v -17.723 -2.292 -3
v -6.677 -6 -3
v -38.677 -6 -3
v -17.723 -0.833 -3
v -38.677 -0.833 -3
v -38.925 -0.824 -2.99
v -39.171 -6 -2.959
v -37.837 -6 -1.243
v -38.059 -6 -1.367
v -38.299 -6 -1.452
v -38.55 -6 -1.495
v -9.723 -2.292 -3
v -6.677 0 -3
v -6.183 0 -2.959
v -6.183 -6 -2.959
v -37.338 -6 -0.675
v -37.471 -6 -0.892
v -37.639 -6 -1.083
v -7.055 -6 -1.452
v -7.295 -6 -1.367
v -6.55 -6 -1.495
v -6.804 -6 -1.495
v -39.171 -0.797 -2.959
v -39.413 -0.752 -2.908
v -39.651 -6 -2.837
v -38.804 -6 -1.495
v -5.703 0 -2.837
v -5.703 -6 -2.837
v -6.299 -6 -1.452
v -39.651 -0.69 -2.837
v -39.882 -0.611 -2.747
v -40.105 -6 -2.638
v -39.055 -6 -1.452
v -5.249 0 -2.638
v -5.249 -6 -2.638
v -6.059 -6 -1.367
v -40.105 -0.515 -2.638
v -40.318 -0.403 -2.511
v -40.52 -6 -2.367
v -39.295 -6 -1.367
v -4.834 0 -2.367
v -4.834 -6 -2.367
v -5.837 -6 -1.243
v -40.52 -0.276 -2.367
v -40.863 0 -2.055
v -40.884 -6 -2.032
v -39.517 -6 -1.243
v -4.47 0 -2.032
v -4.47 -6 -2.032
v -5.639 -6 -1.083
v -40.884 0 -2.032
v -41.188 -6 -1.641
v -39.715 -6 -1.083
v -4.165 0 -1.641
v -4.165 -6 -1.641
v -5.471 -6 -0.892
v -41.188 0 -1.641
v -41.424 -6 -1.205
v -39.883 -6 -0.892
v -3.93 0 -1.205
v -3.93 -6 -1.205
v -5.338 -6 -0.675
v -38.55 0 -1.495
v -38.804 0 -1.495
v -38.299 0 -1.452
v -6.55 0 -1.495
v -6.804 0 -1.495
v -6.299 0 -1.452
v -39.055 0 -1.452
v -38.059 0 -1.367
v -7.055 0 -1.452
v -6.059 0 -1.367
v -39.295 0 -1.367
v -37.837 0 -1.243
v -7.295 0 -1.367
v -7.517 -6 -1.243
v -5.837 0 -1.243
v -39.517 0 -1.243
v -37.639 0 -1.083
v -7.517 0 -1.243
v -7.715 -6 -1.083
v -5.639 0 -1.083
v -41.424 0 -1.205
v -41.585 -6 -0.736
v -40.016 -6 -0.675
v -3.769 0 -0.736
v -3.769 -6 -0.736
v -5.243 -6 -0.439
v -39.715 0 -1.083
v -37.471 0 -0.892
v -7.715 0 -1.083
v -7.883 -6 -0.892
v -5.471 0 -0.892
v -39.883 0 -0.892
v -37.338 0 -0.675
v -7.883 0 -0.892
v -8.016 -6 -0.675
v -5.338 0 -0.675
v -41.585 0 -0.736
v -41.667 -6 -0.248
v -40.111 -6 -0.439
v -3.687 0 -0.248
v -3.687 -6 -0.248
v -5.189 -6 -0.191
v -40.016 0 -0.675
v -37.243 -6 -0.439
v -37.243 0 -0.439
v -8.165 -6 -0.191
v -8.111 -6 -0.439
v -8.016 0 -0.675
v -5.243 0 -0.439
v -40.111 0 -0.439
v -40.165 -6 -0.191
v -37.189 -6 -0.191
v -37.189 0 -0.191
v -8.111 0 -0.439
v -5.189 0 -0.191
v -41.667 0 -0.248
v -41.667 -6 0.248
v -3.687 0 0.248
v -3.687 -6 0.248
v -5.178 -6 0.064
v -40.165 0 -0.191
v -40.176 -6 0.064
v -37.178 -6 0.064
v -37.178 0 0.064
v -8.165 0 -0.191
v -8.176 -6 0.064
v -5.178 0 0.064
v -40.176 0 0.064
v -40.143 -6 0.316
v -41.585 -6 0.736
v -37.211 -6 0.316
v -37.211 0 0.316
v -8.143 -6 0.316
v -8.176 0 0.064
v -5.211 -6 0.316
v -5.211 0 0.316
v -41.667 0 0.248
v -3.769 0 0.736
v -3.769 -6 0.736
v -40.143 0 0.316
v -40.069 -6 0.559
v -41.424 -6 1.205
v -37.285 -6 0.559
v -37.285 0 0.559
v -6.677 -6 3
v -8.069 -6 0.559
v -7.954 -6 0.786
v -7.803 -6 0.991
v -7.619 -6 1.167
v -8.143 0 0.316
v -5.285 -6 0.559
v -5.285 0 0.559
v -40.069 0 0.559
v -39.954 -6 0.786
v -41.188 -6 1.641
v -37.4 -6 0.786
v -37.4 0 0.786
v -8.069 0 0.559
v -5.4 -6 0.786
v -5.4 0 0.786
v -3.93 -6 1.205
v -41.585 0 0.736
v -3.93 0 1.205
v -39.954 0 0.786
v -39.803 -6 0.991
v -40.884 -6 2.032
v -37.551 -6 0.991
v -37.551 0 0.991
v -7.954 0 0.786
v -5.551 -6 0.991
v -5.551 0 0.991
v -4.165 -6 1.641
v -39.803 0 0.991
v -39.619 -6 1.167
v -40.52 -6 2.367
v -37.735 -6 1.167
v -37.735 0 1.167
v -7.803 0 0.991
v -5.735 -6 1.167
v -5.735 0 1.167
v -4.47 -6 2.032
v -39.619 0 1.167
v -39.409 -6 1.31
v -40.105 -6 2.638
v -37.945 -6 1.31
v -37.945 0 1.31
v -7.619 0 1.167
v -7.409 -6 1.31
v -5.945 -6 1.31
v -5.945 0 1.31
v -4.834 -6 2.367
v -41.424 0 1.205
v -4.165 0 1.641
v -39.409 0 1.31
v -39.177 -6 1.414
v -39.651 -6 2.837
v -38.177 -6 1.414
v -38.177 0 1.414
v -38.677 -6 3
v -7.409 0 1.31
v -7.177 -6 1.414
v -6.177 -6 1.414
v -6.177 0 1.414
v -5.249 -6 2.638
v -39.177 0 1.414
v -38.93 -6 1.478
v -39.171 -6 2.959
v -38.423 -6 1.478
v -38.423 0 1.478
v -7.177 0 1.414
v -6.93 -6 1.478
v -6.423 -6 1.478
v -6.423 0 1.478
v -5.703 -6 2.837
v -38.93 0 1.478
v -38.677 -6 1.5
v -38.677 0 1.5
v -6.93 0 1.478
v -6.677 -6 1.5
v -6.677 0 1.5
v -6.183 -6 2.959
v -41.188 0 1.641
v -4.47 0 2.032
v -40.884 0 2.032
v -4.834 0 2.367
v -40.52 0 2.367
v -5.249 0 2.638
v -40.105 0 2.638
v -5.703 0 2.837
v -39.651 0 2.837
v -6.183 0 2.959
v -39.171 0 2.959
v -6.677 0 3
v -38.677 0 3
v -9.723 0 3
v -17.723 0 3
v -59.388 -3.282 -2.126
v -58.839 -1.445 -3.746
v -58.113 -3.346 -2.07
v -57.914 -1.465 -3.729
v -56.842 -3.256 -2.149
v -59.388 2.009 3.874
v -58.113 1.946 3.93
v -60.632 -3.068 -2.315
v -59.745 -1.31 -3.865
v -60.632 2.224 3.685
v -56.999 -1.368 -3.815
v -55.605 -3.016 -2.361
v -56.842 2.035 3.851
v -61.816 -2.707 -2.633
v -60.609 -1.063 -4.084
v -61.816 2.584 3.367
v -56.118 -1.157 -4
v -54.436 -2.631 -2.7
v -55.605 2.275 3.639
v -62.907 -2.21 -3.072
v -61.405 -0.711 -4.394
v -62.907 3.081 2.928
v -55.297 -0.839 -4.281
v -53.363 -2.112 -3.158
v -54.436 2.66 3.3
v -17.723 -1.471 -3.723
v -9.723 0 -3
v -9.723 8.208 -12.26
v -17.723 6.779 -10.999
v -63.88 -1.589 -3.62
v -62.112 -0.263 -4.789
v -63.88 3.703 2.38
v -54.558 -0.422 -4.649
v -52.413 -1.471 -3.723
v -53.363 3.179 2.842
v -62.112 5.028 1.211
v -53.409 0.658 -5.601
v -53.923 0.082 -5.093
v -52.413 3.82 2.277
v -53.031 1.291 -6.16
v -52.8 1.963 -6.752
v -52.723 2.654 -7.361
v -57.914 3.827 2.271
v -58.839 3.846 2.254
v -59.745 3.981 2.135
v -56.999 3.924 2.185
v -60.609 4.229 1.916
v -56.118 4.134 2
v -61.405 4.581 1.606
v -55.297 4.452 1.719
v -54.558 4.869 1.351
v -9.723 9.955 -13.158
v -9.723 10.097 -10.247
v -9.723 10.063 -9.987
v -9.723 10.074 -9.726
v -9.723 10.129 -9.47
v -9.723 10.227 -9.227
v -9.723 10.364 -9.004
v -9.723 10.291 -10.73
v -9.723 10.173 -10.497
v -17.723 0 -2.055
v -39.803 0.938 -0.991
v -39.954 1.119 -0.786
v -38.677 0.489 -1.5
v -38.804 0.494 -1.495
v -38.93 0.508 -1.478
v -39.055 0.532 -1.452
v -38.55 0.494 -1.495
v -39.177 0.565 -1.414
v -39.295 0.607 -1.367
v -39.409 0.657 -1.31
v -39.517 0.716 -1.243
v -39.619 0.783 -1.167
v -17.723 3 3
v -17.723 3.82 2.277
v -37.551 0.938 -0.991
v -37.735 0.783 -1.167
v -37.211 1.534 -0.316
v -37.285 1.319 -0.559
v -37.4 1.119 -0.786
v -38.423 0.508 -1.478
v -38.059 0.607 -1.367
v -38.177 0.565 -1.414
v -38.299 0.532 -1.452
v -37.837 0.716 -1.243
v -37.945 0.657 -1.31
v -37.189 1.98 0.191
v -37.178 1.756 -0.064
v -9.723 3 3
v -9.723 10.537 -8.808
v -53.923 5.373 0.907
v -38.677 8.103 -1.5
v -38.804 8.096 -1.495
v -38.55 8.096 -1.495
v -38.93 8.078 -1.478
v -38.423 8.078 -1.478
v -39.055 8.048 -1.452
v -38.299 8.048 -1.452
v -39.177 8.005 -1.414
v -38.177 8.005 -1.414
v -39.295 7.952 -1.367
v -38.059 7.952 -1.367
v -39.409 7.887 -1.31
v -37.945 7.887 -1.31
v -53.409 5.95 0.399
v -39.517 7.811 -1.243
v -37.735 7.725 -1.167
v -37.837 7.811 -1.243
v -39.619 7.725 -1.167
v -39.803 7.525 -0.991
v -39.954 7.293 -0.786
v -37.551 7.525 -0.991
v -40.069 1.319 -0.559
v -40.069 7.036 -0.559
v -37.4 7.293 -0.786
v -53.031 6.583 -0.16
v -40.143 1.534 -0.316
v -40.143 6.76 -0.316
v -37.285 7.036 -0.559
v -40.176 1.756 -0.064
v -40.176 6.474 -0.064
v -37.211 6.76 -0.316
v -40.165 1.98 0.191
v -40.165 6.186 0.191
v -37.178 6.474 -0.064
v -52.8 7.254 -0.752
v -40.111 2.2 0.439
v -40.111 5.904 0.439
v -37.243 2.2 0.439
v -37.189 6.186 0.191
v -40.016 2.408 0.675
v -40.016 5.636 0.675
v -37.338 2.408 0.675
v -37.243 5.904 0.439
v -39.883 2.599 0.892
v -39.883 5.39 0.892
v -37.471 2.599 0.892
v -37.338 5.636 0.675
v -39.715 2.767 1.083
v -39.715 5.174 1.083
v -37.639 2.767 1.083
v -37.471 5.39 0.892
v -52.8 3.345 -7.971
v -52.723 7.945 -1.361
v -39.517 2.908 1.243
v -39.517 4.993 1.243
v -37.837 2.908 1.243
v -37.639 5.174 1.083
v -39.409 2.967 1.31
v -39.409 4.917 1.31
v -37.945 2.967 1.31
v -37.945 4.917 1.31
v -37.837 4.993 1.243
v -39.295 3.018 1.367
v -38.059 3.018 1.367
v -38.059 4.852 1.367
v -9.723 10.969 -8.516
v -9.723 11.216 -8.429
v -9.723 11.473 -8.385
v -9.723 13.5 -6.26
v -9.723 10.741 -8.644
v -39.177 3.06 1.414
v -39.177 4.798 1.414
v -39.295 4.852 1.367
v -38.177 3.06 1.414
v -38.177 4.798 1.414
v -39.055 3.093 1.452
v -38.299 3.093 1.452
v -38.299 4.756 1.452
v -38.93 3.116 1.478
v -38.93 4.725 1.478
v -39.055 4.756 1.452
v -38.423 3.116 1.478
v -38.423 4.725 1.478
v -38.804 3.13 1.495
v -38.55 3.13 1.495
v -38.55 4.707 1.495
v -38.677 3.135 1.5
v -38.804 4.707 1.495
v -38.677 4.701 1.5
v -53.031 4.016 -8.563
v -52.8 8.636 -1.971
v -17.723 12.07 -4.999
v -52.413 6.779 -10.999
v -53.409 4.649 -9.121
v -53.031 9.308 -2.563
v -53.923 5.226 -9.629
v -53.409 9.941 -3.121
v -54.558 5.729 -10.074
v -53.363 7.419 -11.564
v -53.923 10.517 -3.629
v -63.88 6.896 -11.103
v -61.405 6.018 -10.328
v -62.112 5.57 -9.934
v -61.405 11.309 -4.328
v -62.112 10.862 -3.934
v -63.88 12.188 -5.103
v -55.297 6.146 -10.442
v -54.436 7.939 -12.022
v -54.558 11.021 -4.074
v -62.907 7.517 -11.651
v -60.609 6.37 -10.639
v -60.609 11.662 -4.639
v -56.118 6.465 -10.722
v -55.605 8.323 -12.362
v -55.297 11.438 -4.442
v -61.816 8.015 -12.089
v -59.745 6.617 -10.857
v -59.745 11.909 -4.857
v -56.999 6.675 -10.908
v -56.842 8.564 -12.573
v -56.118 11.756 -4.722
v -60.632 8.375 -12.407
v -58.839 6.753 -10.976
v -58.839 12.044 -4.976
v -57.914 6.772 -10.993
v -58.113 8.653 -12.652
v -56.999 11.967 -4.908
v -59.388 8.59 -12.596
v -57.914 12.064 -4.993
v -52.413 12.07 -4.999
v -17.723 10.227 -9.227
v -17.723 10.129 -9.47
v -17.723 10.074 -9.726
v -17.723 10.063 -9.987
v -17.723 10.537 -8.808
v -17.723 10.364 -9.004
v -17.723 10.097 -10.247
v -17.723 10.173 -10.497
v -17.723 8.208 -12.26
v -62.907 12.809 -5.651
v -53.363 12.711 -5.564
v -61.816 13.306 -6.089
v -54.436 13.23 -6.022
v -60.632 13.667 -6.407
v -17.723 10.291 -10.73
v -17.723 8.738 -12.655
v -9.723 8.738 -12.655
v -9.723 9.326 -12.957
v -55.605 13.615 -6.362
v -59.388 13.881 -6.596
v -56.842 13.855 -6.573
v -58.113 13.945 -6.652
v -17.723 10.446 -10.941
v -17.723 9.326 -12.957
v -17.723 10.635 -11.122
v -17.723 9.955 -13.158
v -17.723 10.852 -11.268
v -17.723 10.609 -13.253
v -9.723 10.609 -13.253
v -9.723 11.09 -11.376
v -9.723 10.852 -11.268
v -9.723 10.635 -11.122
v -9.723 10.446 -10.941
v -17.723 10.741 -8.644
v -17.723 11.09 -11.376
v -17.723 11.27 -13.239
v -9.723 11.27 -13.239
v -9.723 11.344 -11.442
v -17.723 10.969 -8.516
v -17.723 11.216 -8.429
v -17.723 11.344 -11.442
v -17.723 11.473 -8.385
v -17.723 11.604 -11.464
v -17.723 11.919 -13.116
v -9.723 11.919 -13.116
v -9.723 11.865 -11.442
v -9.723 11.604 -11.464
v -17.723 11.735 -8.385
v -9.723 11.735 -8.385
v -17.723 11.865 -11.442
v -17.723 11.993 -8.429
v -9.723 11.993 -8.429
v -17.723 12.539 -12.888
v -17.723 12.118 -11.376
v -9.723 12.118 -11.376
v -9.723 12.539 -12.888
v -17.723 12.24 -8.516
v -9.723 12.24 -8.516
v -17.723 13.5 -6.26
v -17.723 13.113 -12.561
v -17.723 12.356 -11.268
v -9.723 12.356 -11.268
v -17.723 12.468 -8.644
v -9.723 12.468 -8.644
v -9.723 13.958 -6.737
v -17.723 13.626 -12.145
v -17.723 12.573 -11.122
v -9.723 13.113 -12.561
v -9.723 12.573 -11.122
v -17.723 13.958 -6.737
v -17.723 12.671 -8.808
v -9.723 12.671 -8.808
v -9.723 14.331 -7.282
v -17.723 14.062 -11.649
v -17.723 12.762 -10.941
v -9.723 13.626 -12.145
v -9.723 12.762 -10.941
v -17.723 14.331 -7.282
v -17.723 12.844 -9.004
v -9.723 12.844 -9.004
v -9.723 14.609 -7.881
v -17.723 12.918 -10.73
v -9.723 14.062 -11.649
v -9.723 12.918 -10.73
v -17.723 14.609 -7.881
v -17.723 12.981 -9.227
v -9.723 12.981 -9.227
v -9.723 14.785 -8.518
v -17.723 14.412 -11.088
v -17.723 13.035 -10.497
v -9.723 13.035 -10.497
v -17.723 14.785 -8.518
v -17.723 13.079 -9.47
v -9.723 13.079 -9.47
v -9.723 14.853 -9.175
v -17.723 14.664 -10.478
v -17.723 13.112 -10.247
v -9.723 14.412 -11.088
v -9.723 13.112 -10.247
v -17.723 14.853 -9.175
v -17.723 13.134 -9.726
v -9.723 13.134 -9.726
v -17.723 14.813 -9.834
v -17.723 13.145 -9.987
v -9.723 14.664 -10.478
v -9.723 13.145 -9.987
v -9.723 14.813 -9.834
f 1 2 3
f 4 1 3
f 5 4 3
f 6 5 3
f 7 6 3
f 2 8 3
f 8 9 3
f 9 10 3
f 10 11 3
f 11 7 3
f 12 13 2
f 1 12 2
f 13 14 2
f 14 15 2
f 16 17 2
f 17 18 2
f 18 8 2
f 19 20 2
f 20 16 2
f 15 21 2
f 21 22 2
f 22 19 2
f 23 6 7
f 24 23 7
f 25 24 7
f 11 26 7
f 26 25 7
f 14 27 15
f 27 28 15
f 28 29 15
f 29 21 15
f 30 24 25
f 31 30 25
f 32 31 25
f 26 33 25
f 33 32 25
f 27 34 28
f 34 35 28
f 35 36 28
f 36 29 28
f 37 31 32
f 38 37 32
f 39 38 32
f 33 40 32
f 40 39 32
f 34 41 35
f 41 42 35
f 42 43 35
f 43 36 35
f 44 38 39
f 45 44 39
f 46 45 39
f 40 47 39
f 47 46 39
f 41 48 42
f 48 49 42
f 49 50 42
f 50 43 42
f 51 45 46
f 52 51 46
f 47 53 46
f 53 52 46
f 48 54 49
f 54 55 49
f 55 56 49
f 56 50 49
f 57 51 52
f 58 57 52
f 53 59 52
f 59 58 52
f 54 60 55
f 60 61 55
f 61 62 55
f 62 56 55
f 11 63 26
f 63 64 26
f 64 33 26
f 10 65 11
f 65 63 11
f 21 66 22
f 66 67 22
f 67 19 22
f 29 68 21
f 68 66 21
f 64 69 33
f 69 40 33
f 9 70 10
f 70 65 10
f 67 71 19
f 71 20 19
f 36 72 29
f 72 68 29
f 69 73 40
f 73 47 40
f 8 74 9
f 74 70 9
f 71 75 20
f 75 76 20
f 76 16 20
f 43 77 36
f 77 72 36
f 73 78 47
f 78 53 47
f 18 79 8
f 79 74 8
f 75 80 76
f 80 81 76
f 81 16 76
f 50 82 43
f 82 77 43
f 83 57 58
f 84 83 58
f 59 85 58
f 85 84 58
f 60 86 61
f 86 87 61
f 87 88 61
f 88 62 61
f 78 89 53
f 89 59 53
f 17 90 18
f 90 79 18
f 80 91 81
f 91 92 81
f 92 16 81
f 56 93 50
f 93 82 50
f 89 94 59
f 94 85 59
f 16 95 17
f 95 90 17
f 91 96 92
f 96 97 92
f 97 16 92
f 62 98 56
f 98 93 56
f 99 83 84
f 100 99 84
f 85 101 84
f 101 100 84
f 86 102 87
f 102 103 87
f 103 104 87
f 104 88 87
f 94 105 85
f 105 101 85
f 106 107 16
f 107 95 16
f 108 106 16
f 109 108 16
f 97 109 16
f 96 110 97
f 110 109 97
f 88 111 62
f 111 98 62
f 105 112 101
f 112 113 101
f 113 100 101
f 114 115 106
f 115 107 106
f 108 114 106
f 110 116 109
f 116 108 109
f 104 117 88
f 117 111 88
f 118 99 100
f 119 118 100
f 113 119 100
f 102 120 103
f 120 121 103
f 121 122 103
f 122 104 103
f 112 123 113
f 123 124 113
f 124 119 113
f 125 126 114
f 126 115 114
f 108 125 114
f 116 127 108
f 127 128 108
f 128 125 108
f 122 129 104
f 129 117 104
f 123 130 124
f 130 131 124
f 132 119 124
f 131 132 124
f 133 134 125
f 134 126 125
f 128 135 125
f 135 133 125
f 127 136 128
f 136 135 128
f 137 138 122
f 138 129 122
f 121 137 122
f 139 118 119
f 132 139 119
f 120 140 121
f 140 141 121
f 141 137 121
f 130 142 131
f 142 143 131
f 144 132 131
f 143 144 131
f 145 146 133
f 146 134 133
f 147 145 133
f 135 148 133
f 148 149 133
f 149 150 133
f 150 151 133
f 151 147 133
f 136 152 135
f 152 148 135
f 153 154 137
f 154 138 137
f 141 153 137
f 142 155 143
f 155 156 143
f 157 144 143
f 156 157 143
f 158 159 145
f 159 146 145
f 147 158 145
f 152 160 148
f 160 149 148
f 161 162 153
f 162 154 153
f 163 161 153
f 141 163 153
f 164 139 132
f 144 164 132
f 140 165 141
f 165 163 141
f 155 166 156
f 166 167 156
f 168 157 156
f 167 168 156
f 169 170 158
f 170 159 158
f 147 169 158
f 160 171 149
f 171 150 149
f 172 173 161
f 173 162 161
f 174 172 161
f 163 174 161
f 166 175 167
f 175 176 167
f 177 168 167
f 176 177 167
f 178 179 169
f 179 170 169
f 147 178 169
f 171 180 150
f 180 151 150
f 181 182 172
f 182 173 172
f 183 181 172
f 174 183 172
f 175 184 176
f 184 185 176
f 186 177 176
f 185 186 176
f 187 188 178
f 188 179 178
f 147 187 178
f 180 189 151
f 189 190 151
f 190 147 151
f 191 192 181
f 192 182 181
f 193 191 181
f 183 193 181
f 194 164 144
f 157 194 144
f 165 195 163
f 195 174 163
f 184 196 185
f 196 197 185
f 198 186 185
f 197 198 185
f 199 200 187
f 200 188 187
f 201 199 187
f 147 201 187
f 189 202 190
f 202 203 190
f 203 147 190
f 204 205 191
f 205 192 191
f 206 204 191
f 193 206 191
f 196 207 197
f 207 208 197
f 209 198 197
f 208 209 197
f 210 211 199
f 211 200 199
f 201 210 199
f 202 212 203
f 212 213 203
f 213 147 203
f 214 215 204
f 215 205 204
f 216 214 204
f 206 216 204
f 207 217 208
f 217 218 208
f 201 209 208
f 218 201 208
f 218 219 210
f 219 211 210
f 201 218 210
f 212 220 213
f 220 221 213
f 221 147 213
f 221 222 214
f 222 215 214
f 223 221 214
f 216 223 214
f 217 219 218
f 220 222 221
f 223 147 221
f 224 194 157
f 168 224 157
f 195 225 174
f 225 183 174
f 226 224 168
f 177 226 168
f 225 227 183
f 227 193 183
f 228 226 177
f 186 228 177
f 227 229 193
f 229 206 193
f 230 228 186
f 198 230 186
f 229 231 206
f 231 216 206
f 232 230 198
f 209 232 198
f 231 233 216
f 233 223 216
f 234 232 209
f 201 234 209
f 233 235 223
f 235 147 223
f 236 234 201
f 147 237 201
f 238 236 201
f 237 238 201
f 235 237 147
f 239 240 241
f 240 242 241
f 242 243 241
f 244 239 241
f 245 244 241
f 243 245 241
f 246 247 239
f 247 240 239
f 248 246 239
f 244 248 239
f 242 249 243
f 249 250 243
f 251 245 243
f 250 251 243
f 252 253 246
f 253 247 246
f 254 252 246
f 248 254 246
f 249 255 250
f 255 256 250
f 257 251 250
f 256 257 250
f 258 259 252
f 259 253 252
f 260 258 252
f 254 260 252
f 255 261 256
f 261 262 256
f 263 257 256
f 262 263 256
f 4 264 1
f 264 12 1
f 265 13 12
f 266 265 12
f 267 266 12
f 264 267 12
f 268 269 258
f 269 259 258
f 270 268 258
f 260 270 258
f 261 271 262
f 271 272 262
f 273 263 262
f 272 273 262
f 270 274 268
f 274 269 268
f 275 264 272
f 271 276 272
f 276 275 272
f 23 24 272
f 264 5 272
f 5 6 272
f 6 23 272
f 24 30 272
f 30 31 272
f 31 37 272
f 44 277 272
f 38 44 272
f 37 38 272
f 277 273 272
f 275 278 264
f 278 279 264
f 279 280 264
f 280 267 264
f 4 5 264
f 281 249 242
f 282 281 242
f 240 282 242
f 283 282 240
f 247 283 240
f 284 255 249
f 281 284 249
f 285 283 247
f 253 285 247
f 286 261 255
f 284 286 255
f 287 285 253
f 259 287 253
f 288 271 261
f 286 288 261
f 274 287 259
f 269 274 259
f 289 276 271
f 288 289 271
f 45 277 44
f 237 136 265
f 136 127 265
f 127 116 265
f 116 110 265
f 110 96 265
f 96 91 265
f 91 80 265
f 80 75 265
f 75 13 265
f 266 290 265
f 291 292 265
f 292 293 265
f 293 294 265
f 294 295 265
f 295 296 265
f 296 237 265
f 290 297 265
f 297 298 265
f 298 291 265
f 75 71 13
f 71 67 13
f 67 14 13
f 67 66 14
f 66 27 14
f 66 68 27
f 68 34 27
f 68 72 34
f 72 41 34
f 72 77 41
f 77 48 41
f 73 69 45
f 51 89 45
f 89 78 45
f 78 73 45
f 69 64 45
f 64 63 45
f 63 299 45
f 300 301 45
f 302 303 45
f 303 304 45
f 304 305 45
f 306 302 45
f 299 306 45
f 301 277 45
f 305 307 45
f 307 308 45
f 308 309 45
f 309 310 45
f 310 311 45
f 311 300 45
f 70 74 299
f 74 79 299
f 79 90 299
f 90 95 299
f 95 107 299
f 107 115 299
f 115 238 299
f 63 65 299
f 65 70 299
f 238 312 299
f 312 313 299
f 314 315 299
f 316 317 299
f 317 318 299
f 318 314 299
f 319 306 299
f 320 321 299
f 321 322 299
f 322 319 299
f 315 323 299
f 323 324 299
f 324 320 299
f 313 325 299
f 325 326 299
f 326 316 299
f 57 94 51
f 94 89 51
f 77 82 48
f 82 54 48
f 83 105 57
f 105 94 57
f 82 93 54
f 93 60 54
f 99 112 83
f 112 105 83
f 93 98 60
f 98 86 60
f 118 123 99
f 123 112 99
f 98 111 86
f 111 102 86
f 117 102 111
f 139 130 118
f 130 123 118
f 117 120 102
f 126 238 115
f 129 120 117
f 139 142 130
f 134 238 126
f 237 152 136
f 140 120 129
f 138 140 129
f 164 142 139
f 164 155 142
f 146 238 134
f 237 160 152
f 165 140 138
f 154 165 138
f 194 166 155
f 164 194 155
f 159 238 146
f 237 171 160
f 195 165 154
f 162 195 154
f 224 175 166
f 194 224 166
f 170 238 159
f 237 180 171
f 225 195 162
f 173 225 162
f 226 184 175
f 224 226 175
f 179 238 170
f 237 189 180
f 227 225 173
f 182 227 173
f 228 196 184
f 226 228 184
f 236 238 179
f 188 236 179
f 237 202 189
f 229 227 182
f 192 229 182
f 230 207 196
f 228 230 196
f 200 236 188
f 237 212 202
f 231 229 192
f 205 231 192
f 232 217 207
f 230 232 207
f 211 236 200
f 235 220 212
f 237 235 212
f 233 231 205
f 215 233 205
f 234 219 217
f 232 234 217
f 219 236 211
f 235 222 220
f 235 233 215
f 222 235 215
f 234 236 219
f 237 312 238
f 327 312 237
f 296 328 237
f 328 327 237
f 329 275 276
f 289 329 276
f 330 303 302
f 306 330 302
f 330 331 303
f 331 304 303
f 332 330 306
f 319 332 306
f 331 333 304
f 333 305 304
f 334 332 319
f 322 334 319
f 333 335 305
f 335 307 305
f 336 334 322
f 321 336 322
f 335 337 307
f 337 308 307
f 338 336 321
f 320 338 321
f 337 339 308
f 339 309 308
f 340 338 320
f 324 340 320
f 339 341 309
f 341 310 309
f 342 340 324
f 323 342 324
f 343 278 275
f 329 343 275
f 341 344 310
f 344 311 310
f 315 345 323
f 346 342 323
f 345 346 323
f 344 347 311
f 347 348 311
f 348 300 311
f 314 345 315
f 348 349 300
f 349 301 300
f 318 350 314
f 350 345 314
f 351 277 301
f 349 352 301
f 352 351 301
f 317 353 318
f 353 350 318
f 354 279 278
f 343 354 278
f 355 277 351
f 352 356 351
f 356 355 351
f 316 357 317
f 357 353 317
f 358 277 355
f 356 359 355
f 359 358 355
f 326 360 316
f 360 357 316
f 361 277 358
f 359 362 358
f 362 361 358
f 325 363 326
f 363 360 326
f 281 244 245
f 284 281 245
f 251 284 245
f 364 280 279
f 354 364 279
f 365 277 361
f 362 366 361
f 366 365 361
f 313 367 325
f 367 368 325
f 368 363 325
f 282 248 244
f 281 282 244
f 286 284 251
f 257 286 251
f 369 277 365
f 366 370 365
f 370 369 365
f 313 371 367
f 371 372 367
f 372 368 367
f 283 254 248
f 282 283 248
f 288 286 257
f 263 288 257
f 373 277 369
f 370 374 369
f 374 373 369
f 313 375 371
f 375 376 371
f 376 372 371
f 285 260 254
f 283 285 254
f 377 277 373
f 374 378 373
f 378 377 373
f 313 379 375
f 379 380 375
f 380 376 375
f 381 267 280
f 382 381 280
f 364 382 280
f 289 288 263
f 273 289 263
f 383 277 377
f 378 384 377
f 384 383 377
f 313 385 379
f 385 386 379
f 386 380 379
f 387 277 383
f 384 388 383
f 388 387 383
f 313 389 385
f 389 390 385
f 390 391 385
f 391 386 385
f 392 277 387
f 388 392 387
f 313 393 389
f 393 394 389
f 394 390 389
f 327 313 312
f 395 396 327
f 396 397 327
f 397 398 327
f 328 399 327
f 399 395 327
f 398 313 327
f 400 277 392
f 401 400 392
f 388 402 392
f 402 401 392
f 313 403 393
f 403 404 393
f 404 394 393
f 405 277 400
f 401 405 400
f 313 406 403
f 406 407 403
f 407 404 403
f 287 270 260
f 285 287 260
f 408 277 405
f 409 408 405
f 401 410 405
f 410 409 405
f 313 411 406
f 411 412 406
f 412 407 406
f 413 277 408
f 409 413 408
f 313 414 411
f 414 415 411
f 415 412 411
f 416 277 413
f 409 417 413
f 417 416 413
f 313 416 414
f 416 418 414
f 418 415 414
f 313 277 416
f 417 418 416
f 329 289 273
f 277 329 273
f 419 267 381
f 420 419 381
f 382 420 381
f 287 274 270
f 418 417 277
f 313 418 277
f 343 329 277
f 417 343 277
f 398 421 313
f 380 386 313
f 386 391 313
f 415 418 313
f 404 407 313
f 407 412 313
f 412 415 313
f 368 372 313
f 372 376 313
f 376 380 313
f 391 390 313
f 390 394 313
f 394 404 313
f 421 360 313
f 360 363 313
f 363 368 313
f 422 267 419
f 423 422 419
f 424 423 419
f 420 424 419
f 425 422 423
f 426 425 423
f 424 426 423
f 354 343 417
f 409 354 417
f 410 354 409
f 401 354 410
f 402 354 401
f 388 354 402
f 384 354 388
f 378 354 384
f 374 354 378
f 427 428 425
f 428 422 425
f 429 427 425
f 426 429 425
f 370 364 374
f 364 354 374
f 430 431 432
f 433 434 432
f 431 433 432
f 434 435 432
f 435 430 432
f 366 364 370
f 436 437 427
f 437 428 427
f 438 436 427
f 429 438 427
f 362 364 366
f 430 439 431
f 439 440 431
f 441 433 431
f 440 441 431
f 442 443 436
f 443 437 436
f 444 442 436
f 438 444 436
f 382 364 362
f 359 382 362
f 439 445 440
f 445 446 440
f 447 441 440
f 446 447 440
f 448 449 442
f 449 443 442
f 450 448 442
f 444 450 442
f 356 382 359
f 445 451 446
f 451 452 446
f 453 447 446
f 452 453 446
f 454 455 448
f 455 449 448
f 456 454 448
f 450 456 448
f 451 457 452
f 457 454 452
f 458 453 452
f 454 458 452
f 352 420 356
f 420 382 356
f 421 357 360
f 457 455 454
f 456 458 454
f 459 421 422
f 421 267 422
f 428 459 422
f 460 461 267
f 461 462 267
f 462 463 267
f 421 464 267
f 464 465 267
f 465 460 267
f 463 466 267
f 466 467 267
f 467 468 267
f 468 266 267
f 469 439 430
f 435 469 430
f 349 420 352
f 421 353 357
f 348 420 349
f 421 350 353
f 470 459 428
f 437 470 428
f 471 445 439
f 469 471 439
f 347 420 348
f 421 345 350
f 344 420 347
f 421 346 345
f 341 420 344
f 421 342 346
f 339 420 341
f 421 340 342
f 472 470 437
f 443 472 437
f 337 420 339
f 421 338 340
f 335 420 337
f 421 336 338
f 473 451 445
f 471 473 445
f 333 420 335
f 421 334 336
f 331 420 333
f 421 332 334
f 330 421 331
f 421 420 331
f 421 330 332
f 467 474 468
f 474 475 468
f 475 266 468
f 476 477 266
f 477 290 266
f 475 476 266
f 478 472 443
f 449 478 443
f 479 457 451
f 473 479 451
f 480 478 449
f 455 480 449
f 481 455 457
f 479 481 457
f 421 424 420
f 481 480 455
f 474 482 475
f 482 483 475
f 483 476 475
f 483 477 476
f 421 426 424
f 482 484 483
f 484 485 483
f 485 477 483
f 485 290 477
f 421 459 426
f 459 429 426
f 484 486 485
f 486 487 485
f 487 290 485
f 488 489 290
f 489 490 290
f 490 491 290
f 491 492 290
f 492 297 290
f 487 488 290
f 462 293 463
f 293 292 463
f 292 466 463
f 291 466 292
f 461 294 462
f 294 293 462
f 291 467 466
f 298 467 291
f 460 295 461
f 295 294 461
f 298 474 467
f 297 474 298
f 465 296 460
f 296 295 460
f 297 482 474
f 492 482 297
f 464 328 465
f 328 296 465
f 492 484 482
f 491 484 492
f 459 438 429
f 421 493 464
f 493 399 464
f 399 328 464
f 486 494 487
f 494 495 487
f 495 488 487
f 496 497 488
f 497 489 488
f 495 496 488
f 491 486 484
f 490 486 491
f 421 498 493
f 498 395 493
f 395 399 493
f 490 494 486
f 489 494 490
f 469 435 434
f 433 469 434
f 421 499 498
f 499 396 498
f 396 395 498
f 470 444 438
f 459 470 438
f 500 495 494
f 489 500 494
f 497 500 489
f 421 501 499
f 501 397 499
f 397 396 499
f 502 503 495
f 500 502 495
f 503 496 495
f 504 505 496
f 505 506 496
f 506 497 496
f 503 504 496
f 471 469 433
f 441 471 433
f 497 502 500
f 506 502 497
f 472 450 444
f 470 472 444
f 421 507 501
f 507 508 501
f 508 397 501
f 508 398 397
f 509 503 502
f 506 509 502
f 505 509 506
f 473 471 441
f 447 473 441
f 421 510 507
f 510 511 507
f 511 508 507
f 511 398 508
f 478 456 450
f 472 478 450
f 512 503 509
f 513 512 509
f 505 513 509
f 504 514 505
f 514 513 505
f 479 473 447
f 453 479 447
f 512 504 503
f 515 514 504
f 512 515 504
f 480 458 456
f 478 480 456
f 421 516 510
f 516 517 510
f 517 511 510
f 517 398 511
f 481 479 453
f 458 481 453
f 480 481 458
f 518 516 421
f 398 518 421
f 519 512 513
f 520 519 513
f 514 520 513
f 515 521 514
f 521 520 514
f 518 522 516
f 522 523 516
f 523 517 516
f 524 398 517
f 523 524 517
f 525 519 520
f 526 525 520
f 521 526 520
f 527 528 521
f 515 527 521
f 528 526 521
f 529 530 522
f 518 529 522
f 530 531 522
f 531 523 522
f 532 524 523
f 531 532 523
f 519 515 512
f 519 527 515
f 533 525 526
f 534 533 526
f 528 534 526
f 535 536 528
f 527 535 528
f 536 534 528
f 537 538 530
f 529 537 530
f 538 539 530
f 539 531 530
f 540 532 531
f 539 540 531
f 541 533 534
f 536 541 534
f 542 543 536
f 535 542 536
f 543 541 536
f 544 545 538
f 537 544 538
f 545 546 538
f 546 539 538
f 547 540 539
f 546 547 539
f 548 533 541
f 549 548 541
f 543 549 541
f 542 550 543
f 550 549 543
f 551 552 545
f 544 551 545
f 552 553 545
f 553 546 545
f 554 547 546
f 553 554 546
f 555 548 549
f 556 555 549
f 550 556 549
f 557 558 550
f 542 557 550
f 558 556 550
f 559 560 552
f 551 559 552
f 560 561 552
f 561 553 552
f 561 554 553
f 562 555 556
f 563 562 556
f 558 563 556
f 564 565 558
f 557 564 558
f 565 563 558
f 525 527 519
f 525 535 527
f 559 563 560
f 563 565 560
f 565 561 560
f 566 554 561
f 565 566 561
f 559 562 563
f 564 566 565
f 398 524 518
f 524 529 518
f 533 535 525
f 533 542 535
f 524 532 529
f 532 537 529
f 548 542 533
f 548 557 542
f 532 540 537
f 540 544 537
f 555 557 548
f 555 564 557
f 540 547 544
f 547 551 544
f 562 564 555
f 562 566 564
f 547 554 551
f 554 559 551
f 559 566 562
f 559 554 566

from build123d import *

# Parameters (mm, degrees)
SKETCH_1_R          = 1.5
EXTRUDE_2_DEPTH     = 6
SKETCH_1_4_W        = 8
SKETCH_1_4_H        = 6
EXTRUDE_3_DEPTH     = 3
EXTRUDE_28_DEPTH    = 8
SKETCH_8_R          = 1.542364341
CUT_EXTRUDE_2_DEPTH = 12
EXTRUDE_29_DEPTH    = 35
EXTRUDE_30_DEPTH    = 8
CUT_EXTRUDE_START   = -20
SKETCH_11_R         = 1.5
CUT_EXTRUDE_3_DEPTH = 20


with BuildPart() as part:
    # 草圖1 → 填料-伸長2 (new body)
    with BuildSketch(Plane(origin=(0, 0, 0), x_dir=(1, 0, 0), z_dir=(0, 1, 0))):
        with BuildLine():
            Line((-38.676968887, -3), (-6.676968887, -3))
            ThreePointArc((-6.676968887, -3), (-3.676968887, 0), (-6.676968887, 3))
            Line((-6.676968887, 3), (-38.676968887, 3))
            ThreePointArc((-38.676968887, 3), (-41.676968887, 0), (-38.676968887, -3))
        make_face()
        with Locations((-38.676968887, 0)):
            Circle(SKETCH_1_R, mode=Mode.SUBTRACT)
        with Locations((-6.676968887, 0)):
            Circle(SKETCH_1_R, mode=Mode.SUBTRACT)
    extrude(amount=-EXTRUDE_2_DEPTH)

    # 草圖1<4> → 填料-伸長3 (add)
    with BuildSketch(Plane(origin=(0, 0, 0), x_dir=(1, 0, 0), z_dir=(0, 1, 0))):
        with Locations((-13.722758256, 0)):
            Rectangle(SKETCH_1_4_W, SKETCH_1_4_H)
    extrude(amount=EXTRUDE_3_DEPTH)

    # 草圖3 → 填料-伸長28 (add)
    with BuildSketch(Plane(origin=(-9.722758256, 0, 0), x_dir=(0, 0, -1), z_dir=(1, 0, 0))):
        with BuildLine():
            Line((3, -2.291502622), (12.260129589, 8.208497378))
            ThreePointArc((12.260129589, 8.208497378), (11.9058809, 13.854248689), (6.260129589, 13.5))
            Line((6.260129589, 13.5), (-3, 3))
            Line((-3, 3), (3, -2.291502622))
        make_face()
    extrude(amount=-EXTRUDE_28_DEPTH)

    # 草圖8 → 除料-伸長2 (cut)
    with BuildSketch(Plane(origin=(-9.722758256, 0, 0), x_dir=(0, 0, -1), z_dir=(1, 0, 0))):
        with Locations((9.921567416, 11.604248689)):
            Circle(SKETCH_8_R)
    extrude(amount=-CUT_EXTRUDE_2_DEPTH, mode=Mode.SUBTRACT)

    # 草圖9 → 填料-伸長29 (add)
    with BuildSketch(Plane.ZY.offset(17.722758256)):
        Polygon((-10.999130047, 6.778658296), (-4.999130047, 12.070160919), (2.276686058, 3.820160919), (-3.723313942, -1.471341704), align=None)
    extrude(amount=EXTRUDE_29_DEPTH)

    # 草圖10 → 填料-伸長30 (add)
    with BuildSketch(Plane(origin=(0, -2.49076751, -2.824264888), x_dir=(-1, 0, 0), z_dir=(0, -0.6614378277661491, -0.7499999999999987))):
        with BuildLine():
            Line((62.111845553, 10.748321705), (63.879612506, 12.516088658))
            ThreePointArc((63.879612506, 12.516088658), (50.222758256, 6.859234408), (63.879612506, 1.202380159))
            Line((63.879612506, 1.202380159), (62.111845553, 2.970147112))
            ThreePointArc((62.111845553, 2.970147112), (52.722758256, 6.859234408), (62.111845553, 10.748321705))
        make_face()
    extrude(amount=-EXTRUDE_30_DEPTH)

    # 草圖11 → 除料-伸長3 (cut)
    with BuildSketch(Plane.XZ.offset(6).offset(CUT_EXTRUDE_START)):
        with Locations((-38.676968887, 0)):
            Circle(SKETCH_11_R)
    extrude(amount=CUT_EXTRUDE_3_DEPTH, mode=Mode.SUBTRACT)


solid = part.part
